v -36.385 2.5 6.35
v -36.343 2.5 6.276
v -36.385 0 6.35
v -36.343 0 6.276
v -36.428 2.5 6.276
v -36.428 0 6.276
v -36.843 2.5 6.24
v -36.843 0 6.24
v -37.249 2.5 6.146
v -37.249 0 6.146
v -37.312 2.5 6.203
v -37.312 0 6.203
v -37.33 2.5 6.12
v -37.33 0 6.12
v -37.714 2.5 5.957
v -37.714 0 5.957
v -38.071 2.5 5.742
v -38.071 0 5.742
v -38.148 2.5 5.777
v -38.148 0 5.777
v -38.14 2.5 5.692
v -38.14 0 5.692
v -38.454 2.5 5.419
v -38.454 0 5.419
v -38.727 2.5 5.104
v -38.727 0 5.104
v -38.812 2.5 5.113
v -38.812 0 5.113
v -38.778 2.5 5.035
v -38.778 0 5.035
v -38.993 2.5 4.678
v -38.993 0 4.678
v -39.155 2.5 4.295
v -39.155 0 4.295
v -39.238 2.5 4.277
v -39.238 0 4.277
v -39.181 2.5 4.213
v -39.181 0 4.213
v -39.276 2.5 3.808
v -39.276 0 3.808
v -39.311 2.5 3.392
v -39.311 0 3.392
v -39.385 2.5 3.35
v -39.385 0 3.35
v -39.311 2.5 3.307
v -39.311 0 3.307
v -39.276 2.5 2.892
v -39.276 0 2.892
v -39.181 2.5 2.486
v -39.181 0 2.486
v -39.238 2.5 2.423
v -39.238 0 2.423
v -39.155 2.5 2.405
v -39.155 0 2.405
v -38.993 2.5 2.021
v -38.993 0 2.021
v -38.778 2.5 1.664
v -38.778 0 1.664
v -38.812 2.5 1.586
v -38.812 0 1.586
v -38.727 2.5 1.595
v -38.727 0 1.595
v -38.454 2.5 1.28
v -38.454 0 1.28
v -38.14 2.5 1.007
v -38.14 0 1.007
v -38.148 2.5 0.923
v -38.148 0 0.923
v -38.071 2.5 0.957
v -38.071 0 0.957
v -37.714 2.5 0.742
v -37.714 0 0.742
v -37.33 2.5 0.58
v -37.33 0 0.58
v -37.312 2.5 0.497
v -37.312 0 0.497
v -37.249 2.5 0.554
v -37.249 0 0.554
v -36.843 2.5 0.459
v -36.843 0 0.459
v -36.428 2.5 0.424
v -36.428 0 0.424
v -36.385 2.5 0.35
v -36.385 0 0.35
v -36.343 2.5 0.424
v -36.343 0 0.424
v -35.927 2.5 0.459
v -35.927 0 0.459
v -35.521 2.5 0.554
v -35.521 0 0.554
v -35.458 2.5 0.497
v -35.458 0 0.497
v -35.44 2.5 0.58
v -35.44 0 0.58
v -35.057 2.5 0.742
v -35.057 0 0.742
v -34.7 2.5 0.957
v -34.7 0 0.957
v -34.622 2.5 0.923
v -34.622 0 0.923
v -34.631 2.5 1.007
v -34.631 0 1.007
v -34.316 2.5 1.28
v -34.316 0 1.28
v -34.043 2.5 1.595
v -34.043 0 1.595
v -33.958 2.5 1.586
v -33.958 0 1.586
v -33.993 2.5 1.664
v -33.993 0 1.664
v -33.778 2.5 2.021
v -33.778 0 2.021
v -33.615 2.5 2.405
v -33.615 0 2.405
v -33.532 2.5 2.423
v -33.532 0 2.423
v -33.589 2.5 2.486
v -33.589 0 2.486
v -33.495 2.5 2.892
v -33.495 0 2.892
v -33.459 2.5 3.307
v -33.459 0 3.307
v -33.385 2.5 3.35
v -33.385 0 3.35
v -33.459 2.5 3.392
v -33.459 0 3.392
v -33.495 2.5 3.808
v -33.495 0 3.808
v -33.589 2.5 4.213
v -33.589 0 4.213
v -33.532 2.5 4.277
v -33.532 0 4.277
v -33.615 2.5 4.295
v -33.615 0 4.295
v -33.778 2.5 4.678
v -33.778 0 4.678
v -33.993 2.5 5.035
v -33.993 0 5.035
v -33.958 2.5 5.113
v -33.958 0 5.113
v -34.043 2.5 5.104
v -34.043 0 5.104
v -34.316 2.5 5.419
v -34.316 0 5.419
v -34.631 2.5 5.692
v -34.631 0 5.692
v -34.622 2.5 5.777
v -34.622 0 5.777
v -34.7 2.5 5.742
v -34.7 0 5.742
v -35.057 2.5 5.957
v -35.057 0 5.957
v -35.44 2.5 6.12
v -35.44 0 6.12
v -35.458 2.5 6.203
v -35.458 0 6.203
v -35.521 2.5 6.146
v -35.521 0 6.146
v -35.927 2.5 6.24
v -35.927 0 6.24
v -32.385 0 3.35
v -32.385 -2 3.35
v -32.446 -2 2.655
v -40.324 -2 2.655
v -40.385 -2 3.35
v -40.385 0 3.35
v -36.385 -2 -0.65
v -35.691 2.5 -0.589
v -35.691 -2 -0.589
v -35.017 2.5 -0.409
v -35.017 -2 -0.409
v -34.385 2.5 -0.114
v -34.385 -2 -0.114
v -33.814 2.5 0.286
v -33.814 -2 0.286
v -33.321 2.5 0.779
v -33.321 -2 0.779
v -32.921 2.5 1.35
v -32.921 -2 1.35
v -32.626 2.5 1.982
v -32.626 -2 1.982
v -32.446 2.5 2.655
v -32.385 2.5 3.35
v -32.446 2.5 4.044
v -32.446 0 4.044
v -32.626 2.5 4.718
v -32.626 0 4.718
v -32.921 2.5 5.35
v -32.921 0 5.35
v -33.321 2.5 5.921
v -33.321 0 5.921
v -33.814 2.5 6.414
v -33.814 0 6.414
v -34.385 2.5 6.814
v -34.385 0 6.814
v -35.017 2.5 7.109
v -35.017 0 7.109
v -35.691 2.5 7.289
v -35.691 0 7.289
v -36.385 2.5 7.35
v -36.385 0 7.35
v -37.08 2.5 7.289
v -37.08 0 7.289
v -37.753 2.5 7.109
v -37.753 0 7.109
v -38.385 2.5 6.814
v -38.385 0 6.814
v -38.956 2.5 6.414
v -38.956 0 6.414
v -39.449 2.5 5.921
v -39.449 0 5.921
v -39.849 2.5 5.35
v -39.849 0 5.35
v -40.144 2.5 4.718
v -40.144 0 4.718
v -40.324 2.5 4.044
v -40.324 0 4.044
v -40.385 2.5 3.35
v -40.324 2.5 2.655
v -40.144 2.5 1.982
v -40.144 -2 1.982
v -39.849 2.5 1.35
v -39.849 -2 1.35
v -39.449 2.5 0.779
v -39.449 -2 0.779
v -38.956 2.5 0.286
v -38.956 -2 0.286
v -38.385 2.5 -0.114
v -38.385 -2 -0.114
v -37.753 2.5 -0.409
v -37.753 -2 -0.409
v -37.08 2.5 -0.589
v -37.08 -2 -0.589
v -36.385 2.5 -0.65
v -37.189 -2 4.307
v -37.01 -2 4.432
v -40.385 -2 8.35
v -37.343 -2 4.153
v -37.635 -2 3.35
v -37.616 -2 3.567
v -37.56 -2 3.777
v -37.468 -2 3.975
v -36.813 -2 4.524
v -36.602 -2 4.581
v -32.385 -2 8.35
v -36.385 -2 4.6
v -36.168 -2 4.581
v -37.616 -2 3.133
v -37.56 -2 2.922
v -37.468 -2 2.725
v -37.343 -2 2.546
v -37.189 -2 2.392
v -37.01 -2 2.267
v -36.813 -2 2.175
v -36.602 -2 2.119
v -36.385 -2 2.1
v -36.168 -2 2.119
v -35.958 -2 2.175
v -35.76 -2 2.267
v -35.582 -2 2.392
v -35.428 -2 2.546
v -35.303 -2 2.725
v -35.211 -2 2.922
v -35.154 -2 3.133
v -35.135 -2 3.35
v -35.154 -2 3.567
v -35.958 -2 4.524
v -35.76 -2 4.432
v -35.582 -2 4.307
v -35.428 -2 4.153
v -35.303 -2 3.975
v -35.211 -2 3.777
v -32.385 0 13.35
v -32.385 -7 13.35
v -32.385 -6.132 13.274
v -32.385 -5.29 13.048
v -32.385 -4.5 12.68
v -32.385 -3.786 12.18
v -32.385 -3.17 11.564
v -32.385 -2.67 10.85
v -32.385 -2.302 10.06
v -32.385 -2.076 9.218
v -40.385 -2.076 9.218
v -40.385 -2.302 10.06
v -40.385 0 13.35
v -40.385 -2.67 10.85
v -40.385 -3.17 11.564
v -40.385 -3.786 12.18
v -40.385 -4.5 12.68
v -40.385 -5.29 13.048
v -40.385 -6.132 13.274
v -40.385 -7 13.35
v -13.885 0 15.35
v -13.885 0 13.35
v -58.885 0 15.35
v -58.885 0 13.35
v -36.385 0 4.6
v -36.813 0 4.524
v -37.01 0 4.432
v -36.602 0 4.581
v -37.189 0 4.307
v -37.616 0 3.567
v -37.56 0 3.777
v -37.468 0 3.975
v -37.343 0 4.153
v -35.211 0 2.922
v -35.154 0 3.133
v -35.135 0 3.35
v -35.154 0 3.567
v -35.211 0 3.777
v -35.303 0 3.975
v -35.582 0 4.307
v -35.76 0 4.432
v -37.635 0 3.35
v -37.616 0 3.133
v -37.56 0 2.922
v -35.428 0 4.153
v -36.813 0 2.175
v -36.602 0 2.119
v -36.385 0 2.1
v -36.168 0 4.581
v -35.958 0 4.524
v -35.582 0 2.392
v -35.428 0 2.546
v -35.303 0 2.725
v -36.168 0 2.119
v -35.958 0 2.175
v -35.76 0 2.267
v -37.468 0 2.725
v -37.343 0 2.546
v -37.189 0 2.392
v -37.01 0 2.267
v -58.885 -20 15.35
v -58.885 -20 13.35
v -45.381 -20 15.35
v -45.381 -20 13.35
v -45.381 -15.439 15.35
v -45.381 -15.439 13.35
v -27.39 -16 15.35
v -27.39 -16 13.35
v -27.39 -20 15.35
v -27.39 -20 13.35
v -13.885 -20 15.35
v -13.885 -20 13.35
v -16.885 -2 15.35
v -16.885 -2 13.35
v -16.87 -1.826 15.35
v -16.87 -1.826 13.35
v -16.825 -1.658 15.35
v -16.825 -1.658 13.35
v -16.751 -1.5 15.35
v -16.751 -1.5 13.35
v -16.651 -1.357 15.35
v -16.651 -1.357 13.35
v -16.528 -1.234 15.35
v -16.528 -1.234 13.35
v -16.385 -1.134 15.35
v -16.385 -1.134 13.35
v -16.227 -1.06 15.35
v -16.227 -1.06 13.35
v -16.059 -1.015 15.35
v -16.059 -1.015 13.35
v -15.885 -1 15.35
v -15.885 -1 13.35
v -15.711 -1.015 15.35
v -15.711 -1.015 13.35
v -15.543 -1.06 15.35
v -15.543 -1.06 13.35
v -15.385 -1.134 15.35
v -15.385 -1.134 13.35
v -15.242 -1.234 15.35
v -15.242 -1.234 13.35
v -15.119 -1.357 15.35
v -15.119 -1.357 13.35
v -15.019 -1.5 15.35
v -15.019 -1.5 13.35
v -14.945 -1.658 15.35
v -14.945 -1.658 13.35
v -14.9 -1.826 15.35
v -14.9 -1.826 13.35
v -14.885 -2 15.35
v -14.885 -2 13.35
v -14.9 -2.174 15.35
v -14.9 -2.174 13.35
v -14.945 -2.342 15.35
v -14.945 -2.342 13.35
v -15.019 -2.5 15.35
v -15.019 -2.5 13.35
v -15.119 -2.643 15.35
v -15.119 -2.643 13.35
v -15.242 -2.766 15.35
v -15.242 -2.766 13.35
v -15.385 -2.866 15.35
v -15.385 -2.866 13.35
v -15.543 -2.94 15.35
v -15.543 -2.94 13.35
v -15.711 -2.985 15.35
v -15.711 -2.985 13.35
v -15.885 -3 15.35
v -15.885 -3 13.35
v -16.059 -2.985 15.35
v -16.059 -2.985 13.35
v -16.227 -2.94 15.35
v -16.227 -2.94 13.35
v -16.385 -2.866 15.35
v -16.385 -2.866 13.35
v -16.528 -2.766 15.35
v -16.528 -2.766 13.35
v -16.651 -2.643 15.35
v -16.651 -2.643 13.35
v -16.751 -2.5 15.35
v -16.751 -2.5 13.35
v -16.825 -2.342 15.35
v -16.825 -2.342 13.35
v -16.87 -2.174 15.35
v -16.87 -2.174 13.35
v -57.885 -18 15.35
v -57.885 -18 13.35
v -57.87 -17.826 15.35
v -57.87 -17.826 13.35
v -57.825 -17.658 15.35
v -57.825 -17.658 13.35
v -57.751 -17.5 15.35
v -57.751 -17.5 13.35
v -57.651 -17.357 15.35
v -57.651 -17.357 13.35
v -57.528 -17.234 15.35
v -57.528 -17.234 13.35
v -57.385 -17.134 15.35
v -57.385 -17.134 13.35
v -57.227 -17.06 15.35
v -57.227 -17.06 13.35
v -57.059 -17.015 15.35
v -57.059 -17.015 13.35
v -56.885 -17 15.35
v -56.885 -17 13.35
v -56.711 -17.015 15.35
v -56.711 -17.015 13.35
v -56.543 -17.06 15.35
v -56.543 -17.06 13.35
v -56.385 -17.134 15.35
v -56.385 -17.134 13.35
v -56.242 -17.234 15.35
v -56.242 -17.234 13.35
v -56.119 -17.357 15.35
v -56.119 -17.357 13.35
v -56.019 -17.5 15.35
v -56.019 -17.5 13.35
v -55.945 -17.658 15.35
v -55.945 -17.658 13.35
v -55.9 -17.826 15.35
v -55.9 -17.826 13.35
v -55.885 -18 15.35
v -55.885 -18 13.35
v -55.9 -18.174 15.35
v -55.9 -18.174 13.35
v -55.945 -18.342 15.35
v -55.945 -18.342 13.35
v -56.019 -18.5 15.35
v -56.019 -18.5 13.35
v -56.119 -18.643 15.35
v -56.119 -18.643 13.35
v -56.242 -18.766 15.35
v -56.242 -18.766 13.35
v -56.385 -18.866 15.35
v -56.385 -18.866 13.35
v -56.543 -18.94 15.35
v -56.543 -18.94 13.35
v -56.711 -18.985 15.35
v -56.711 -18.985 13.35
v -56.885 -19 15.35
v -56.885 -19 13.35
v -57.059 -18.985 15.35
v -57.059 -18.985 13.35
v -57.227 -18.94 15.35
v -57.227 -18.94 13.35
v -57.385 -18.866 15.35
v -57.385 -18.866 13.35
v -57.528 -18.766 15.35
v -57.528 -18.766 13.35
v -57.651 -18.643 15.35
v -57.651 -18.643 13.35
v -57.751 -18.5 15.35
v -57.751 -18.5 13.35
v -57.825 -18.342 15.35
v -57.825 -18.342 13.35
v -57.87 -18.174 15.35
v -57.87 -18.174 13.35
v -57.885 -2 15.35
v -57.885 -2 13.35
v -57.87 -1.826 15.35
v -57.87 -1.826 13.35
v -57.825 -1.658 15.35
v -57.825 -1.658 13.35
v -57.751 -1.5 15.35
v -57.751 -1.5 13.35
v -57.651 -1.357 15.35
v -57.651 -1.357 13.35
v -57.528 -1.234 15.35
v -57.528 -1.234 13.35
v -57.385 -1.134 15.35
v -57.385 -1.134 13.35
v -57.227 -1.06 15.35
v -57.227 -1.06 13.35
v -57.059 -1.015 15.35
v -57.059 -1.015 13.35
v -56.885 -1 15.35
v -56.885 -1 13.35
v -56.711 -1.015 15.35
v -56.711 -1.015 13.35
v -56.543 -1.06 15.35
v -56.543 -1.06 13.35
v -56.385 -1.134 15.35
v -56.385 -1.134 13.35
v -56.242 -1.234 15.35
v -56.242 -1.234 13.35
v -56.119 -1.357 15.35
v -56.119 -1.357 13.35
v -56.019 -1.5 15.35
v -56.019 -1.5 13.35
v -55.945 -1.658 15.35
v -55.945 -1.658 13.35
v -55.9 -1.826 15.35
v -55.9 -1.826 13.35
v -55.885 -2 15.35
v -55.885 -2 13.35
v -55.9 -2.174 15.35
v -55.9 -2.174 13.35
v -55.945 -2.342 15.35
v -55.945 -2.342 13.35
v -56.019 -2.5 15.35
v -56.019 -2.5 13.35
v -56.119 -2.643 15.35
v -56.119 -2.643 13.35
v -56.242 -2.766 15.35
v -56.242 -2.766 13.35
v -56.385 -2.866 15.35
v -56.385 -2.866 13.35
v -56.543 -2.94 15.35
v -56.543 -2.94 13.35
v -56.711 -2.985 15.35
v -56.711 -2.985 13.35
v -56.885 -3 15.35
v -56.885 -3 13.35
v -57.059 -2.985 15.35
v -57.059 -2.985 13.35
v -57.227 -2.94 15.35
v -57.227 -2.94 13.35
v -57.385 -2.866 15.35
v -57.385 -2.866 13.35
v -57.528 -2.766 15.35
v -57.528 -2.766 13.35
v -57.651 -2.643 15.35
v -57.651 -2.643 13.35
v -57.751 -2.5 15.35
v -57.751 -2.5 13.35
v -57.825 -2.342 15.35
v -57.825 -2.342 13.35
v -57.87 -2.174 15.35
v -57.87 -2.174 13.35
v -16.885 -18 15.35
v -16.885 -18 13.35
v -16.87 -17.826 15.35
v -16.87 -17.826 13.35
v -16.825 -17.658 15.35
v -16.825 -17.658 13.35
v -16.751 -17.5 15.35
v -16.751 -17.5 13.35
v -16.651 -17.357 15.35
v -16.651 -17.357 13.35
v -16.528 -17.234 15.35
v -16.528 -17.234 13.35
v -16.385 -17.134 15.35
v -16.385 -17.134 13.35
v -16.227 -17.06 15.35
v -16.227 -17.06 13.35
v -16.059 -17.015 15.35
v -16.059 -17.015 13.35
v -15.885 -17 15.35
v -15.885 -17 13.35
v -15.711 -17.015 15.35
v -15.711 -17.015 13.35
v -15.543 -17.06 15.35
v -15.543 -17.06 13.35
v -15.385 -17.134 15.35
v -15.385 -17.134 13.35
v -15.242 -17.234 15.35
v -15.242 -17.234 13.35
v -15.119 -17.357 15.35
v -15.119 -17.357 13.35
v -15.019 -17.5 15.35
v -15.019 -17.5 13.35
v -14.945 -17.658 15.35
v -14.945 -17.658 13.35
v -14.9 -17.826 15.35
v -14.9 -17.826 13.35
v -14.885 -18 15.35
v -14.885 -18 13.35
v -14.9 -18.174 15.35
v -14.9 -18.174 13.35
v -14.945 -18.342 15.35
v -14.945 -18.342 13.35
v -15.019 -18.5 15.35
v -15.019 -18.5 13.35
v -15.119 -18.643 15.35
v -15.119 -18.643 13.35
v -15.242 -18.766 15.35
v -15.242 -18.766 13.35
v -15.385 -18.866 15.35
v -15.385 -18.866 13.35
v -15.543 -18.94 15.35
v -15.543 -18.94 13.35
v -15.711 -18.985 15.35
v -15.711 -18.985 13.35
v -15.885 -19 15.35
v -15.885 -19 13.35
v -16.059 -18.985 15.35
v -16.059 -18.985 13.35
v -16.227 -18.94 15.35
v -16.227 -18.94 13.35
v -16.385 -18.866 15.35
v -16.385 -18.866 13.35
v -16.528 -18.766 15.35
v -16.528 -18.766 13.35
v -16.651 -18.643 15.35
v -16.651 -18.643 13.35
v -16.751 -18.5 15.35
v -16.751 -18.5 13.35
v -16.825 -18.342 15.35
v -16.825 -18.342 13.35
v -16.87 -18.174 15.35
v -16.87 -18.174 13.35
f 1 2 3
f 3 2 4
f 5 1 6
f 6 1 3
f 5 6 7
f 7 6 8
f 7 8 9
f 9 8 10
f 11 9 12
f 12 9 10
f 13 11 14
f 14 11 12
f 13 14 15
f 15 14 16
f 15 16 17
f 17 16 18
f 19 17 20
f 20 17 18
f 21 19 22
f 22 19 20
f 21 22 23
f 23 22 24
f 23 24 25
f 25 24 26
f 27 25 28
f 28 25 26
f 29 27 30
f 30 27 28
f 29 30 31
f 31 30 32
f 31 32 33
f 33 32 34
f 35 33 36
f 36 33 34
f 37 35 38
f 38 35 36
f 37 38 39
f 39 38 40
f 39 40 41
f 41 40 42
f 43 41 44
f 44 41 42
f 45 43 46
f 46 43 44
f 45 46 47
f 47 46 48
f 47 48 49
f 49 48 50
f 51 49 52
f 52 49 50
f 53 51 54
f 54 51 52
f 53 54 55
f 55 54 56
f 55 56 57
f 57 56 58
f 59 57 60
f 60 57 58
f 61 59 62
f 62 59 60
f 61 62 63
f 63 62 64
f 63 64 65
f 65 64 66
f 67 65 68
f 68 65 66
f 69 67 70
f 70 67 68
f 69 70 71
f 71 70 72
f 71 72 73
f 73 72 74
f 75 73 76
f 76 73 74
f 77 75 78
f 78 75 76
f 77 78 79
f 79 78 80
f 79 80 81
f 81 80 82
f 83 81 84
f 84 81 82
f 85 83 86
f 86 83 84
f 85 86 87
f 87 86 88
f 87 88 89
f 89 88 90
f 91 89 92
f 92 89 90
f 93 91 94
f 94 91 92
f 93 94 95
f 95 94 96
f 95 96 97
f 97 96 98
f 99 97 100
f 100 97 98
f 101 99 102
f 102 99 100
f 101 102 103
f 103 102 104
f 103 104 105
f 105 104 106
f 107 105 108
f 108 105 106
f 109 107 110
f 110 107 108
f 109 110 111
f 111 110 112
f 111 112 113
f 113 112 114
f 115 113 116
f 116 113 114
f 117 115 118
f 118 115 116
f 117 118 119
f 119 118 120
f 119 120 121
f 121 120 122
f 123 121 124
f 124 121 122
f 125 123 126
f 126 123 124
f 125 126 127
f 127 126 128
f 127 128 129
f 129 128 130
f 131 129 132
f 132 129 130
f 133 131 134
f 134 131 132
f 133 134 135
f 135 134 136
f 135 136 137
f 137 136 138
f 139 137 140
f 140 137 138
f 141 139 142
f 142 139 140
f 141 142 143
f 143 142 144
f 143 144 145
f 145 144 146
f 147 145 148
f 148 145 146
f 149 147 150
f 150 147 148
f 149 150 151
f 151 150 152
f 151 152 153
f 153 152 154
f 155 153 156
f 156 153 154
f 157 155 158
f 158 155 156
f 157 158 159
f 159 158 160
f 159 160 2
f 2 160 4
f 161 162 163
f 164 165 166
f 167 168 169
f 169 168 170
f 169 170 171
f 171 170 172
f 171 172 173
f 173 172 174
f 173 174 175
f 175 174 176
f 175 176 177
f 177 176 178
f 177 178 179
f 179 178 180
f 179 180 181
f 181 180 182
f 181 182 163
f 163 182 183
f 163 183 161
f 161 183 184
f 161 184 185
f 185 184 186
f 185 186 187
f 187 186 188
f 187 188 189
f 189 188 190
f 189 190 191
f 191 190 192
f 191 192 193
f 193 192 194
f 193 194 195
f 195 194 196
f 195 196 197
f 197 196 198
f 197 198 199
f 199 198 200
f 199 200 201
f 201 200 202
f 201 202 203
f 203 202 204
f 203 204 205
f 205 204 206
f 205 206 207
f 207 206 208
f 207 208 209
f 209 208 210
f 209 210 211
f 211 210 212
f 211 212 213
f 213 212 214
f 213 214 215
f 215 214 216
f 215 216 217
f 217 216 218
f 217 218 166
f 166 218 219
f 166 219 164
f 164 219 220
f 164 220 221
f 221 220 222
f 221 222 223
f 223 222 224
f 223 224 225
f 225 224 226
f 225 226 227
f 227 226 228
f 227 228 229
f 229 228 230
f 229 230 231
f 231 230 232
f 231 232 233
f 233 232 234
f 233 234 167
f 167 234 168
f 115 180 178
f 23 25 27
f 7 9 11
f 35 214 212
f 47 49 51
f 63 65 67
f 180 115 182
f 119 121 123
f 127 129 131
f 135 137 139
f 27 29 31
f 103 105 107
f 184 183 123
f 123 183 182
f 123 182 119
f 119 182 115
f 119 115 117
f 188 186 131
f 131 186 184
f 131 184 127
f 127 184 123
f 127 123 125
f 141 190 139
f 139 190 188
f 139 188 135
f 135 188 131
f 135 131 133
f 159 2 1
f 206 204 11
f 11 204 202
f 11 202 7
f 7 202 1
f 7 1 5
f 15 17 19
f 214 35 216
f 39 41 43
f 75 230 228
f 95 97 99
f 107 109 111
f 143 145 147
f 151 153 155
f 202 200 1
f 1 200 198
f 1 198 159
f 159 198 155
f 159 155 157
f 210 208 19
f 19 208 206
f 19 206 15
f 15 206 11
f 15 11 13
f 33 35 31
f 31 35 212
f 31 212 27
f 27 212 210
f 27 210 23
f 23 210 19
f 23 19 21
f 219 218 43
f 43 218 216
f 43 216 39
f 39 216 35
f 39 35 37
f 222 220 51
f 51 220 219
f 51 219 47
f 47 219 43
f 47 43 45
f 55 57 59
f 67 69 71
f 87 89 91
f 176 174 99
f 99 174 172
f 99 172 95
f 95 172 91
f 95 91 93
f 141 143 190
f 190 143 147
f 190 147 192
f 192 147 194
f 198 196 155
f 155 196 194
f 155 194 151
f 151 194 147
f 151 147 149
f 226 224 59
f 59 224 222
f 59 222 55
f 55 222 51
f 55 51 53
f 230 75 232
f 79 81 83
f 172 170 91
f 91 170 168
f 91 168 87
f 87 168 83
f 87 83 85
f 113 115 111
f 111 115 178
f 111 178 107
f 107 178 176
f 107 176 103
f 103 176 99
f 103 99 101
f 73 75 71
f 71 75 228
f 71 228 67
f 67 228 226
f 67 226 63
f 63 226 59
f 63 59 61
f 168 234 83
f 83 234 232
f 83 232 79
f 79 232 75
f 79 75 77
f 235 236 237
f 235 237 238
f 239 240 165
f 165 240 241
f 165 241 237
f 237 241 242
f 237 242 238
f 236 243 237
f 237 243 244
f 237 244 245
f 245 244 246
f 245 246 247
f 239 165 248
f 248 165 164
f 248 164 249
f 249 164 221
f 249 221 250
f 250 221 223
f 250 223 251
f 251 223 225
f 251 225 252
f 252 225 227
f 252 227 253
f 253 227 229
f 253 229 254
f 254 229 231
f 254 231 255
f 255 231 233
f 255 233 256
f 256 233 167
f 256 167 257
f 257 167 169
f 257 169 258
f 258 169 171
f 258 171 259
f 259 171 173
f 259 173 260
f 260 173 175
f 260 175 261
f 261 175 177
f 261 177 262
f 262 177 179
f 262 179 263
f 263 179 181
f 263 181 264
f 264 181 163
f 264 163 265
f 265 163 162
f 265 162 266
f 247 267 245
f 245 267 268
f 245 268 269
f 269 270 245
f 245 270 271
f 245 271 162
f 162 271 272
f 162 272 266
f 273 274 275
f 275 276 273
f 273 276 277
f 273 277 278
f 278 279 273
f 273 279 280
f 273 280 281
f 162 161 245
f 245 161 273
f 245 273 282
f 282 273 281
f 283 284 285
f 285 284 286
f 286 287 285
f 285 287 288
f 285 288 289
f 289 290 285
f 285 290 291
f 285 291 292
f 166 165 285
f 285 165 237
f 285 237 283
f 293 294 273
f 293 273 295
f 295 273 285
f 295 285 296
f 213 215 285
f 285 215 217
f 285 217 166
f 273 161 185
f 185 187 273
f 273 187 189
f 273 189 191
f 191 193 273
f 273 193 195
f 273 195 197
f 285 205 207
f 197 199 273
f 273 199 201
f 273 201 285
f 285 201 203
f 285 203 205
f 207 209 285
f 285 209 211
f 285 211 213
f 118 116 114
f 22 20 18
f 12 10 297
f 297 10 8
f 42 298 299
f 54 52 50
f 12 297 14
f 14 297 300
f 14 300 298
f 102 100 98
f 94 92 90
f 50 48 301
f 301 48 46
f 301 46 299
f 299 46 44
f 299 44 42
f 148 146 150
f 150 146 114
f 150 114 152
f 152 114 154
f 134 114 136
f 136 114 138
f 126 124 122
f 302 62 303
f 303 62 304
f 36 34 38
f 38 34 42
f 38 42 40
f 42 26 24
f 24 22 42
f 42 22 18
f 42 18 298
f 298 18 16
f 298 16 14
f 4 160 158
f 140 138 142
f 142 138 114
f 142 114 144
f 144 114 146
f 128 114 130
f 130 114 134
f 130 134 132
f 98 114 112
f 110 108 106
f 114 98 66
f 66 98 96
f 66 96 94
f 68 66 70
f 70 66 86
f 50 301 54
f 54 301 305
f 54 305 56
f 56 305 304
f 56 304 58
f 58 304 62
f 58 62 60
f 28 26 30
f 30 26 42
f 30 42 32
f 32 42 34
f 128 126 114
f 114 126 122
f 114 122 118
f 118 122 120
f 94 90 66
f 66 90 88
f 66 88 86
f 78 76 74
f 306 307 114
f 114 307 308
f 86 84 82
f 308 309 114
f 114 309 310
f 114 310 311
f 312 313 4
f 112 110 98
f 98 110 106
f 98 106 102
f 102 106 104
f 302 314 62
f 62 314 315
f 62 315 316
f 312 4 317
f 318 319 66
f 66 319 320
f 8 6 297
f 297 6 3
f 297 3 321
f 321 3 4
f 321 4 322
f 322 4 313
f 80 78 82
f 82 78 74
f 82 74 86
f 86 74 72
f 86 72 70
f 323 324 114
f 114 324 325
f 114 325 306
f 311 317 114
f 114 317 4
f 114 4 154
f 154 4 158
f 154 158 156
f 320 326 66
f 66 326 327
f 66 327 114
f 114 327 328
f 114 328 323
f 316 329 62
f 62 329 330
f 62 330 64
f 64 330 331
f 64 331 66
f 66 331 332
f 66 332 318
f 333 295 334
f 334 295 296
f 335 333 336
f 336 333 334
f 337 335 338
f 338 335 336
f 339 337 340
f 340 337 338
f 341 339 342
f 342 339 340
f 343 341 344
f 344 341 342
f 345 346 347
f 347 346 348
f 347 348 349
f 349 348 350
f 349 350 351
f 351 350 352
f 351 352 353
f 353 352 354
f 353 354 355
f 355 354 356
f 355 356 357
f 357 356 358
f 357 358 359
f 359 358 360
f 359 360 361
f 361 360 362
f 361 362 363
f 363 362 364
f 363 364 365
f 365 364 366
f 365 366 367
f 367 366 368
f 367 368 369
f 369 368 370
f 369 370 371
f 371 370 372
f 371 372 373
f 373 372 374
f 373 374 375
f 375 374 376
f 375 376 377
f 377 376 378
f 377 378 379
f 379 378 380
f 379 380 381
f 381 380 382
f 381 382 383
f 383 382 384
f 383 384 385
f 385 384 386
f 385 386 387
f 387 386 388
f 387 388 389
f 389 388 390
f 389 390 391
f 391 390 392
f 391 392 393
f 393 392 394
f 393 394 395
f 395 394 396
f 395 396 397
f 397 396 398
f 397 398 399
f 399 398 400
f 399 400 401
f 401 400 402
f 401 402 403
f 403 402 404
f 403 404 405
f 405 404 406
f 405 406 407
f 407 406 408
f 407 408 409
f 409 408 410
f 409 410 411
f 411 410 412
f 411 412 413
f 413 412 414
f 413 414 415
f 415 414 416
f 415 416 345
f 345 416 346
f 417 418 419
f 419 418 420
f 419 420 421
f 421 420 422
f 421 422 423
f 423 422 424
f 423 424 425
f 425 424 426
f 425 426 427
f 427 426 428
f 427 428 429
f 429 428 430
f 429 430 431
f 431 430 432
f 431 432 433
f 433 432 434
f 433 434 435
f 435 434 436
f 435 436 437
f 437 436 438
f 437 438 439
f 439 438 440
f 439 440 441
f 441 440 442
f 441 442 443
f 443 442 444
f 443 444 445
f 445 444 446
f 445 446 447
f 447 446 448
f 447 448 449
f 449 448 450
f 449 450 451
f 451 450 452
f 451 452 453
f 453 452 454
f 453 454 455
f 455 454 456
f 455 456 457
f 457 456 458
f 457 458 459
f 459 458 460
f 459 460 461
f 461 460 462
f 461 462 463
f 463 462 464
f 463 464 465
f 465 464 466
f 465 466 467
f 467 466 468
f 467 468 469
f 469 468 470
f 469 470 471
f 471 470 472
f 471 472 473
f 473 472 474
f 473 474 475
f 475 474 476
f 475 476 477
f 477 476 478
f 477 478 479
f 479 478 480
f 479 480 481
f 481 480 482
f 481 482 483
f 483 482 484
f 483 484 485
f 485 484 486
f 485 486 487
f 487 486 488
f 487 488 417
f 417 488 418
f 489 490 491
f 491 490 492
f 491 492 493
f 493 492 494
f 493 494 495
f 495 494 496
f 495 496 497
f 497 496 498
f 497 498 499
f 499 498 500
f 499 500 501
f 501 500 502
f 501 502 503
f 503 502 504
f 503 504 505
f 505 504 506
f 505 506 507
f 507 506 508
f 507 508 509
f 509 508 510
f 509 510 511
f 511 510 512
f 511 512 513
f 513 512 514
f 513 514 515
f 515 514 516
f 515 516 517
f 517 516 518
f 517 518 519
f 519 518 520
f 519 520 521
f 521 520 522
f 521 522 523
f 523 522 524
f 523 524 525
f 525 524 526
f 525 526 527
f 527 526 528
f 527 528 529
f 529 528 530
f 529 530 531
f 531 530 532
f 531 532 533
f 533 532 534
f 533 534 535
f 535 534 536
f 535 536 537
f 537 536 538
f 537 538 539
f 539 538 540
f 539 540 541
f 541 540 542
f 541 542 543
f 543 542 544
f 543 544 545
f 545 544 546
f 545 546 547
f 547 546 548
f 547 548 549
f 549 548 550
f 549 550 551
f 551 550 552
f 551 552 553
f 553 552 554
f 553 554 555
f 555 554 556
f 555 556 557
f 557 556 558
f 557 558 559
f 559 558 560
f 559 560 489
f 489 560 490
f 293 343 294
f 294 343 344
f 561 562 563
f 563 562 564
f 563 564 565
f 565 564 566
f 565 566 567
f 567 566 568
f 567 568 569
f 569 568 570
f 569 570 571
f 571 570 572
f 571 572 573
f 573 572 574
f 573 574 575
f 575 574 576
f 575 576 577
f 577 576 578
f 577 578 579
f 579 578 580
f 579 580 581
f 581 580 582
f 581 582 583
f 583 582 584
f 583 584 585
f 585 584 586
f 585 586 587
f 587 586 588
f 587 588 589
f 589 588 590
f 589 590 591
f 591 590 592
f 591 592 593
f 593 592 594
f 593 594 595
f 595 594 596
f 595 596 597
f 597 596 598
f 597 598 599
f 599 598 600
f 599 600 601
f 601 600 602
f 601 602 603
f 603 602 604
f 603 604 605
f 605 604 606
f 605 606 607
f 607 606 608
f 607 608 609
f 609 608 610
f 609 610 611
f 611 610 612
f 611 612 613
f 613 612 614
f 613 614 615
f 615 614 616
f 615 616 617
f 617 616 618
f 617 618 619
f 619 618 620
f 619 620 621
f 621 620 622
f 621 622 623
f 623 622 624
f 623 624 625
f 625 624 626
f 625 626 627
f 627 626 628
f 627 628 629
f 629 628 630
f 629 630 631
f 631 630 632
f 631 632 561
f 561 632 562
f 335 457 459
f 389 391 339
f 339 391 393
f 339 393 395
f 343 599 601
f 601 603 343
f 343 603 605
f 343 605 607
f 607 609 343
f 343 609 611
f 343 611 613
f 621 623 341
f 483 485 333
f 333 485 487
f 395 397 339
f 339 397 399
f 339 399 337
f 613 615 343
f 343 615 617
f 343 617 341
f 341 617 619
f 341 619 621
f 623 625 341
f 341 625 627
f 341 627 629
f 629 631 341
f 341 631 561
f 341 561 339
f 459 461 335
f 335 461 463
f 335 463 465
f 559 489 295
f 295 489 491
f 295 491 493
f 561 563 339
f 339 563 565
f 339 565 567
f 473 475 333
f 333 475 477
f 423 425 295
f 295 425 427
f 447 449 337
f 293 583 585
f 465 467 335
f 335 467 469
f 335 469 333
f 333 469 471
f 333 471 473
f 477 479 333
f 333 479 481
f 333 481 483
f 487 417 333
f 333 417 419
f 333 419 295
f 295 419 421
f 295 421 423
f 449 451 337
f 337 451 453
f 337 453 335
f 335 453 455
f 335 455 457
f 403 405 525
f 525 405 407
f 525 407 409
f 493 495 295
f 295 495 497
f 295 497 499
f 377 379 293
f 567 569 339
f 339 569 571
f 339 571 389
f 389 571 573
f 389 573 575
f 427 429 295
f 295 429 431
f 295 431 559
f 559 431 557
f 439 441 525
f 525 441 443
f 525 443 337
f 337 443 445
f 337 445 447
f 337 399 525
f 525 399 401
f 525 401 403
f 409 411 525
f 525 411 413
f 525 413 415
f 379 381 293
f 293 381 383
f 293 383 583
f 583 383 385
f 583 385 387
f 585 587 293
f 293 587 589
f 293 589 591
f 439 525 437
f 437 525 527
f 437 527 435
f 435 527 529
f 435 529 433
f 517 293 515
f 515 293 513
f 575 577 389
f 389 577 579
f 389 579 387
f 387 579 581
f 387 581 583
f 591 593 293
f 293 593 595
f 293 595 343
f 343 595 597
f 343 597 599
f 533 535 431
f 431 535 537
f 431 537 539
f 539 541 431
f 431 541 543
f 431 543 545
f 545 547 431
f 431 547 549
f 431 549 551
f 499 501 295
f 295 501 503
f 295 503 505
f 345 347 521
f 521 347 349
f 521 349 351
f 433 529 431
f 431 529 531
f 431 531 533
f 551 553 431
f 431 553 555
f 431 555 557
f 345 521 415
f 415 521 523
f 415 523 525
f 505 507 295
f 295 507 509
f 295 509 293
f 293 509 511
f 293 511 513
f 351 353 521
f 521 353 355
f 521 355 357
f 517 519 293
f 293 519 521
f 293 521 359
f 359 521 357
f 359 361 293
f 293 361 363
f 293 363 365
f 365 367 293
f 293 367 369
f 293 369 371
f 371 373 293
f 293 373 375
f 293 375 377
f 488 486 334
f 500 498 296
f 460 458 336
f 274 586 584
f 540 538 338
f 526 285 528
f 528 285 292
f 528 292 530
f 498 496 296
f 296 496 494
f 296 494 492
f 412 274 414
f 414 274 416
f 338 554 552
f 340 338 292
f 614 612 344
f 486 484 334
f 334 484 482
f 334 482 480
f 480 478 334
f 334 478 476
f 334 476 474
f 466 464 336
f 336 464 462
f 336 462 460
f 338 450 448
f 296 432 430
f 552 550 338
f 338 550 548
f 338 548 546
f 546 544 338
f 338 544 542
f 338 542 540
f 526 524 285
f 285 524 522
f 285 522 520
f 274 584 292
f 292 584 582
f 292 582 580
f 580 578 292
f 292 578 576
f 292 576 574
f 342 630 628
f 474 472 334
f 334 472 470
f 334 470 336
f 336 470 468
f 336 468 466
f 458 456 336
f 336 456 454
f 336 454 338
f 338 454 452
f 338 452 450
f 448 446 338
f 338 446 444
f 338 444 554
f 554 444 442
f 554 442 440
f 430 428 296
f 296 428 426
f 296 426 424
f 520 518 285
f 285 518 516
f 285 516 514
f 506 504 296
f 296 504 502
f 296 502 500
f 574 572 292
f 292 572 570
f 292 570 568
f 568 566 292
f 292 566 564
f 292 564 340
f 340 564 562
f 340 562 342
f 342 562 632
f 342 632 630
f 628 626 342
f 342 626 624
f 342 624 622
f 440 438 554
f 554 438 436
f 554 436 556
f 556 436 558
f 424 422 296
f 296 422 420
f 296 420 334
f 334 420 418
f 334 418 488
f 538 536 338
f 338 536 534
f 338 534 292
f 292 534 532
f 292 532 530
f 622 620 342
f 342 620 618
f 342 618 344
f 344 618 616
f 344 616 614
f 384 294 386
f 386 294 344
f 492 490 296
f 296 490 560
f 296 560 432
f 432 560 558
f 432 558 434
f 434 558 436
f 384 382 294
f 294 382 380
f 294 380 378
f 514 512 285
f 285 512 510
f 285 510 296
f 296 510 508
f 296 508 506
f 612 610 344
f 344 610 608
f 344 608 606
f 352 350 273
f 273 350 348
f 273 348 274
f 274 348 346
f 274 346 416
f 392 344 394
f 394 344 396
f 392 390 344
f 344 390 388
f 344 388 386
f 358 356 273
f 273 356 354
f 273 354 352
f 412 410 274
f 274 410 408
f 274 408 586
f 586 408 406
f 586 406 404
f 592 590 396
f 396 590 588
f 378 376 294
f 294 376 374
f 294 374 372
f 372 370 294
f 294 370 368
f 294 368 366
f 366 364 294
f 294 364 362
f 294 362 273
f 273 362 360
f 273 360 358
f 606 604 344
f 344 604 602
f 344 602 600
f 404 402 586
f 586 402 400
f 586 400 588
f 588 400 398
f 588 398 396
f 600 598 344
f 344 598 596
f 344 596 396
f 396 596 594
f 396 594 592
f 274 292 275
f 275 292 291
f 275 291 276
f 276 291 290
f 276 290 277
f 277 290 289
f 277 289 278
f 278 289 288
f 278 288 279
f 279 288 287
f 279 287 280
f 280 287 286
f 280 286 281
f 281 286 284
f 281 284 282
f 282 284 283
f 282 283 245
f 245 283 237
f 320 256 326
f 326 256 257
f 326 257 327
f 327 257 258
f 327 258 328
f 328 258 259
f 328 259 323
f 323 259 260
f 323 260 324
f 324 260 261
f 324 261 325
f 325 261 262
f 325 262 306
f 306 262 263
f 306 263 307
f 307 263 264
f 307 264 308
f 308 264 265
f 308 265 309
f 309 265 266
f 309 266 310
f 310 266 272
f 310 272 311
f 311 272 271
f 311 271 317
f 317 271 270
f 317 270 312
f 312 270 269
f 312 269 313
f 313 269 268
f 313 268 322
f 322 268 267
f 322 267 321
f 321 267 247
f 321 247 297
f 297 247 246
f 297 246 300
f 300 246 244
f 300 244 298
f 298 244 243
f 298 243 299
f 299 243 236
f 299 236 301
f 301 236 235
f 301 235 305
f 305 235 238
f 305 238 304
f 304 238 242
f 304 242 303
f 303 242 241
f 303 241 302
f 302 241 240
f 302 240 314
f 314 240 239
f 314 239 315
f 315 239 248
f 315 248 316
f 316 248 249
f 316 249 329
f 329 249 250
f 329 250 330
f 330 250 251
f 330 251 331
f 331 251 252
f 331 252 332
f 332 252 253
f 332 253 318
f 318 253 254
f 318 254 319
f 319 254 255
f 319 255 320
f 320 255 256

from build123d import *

# Parameters (mm, degrees)
SKETCH1_R           = 4
BOSS_EXTRUDE1_DEPTH = 2.5
BOSS_EXTRUDE5_DEPTH = 2
SKETCH10_R          = 1
BOSS_EXTRUDE6_DEPTH = 2
FILLET1_R           = 5
SKETCH11_R          = 1.25
CUT_EXTRUDE1_DEPTH  = 12


with BuildPart() as part:
    # Sketch1 → Boss-Extrude1 (new body)
    with BuildSketch(Plane(origin=(0, 0, 0), x_dir=(1, 0, 0), z_dir=(0, 1, 0))):
        with Locations((-36.385139863, -3.349743035)):
            Circle(SKETCH1_R)
        with BuildLine():
            Line((-36.385139863, -0.349743035), (-36.427751557, -0.423548653))
            ThreePointArc((-36.427751557, -0.423548653), (-36.842946049, -0.459268538), (-37.248857528, -0.553599062))
            Line((-37.248857528, -0.553599062), (-37.312190847, -0.496573486))
            Line((-37.312190847, -0.496573486), (-37.329909785, -0.579934537))
            ThreePointArc((-37.329909785, -0.579934537), (-37.713745161, -0.742208321), (-38.070640183, -0.957355526))
            Line((-38.070640183, -0.957355526), (-38.14849562, -0.922692052))
            Line((-38.14849562, -0.922692052), (-38.139587351, -1.007448576))
            ThreePointArc((-38.139587351, -1.007448576), (-38.454491129, -1.28039177), (-38.727434323, -1.595295548))
            Line((-38.727434323, -1.595295548), (-38.812190847, -1.586387278))
            Line((-38.812190847, -1.586387278), (-38.777527372, -1.664242716))
            ThreePointArc((-38.777527372, -1.664242716), (-38.992674577, -2.021137738), (-39.154948361, -2.404973114))
            Line((-39.154948361, -2.404973114), (-39.238309412, -2.422692052))
            Line((-39.238309412, -2.422692052), (-39.181283836, -2.486025371))
            ThreePointArc((-39.181283836, -2.486025371), (-39.27561436, -2.89193685), (-39.311334246, -3.307131342))
            Line((-39.311334246, -3.307131342), (-39.385139863, -3.349743035))
            Line((-39.385139863, -3.349743035), (-39.311334246, -3.392354728))
            ThreePointArc((-39.311334246, -3.392354728), (-39.27561436, -3.80754922), (-39.181283836, -4.2134607))
            Line((-39.181283836, -4.2134607), (-39.238309412, -4.276794018))
            Line((-39.238309412, -4.276794018), (-39.154948361, -4.294512957))
            ThreePointArc((-39.154948361, -4.294512957), (-38.992674577, -4.678348332), (-38.777527372, -5.035243354))
            Line((-38.777527372, -5.035243354), (-38.812190847, -5.113098792))
            Line((-38.812190847, -5.113098792), (-38.727434323, -5.104190522))
            ThreePointArc((-38.727434323, -5.104190522), (-38.454491129, -5.419094301), (-38.139587351, -5.692037494))
            Line((-38.139587351, -5.692037494), (-38.14849562, -5.776794018))
            Line((-38.14849562, -5.776794018), (-38.070640183, -5.742130544))
            ThreePointArc((-38.070640183, -5.742130544), (-37.713745161, -5.957277749), (-37.329909785, -6.119551533))
            Line((-37.329909785, -6.119551533), (-37.312190847, -6.202912584))
            Line((-37.312190847, -6.202912584), (-37.248857528, -6.145887008))
            ThreePointArc((-37.248857528, -6.145887008), (-36.842946049, -6.240217532), (-36.427751557, -6.275937417))
            Line((-36.427751557, -6.275937417), (-36.385139863, -6.349743035))
            Line((-36.385139863, -6.349743035), (-36.34252817, -6.275937417))
            ThreePointArc((-36.34252817, -6.275937417), (-35.927333678, -6.240217532), (-35.521422199, -6.145887008))
            Line((-35.521422199, -6.145887008), (-35.45808888, -6.202912584))
            Line((-35.45808888, -6.202912584), (-35.440369942, -6.119551533))
            ThreePointArc((-35.440369942, -6.119551533), (-35.056534566, -5.957277749), (-34.699639544, -5.742130544))
            Line((-34.699639544, -5.742130544), (-34.621784107, -5.776794018))
            Line((-34.621784107, -5.776794018), (-34.630692376, -5.692037494))
            ThreePointArc((-34.630692376, -5.692037494), (-34.315788598, -5.419094301), (-34.042845404, -5.104190522))
            Line((-34.042845404, -5.104190522), (-33.95808888, -5.113098792))
            Line((-33.95808888, -5.113098792), (-33.992752354, -5.035243354))
            ThreePointArc((-33.992752354, -5.035243354), (-33.77760515, -4.678348332), (-33.615331365, -4.294512957))
            Line((-33.615331365, -4.294512957), (-33.531970315, -4.276794018))
            Line((-33.531970315, -4.276794018), (-33.588995891, -4.2134607))
            ThreePointArc((-33.588995891, -4.2134607), (-33.494665367, -3.80754922), (-33.458945481, -3.392354728))
            Line((-33.458945481, -3.392354728), (-33.385139863, -3.349743035))
            Line((-33.385139863, -3.349743035), (-33.458945481, -3.307131342))
            ThreePointArc((-33.458945481, -3.307131342), (-33.494665367, -2.89193685), (-33.588995891, -2.486025371))
            Line((-33.588995891, -2.486025371), (-33.531970315, -2.422692052))
            Line((-33.531970315, -2.422692052), (-33.615331365, -2.404973114))
            ThreePointArc((-33.615331365, -2.404973114), (-33.77760515, -2.021137738), (-33.992752354, -1.664242716))
            Line((-33.992752354, -1.664242716), (-33.95808888, -1.586387278))
            Line((-33.95808888, -1.586387278), (-34.042845404, -1.595295548))
            ThreePointArc((-34.042845404, -1.595295548), (-34.315788598, -1.28039177), (-34.630692376, -1.007448576))
            Line((-34.630692376, -1.007448576), (-34.621784107, -0.922692052))
            Line((-34.621784107, -0.922692052), (-34.699639544, -0.957355526))
            ThreePointArc((-34.699639544, -0.957355526), (-35.056534566, -0.742208321), (-35.440369942, -0.579934537))
            Line((-35.440369942, -0.579934537), (-35.45808888, -0.496573486))
            Line((-35.45808888, -0.496573486), (-35.521422199, -0.553599062))
            ThreePointArc((-35.521422199, -0.553599062), (-35.927333678, -0.459268538), (-36.34252817, -0.423548653))
            Line((-36.34252817, -0.423548653), (-36.385139863, -0.349743035))
        make_face(mode=Mode.SUBTRACT)
    extrude(amount=BOSS_EXTRUDE1_DEPTH)

    # Sketch2 → Boss-Extrude5 (add)
    with BuildSketch(Plane.XZ):
        with BuildLine():
            ThreePointArc((-40.385139863, 3.349743035), (-36.385139863, -0.650256965), (-32.385139863, 3.349743035))
            Line((-32.385139863, 3.349743035), (-32.385139863, 13.349743035))
            Line((-32.385139863, 13.349743035), (-40.385139863, 13.349743035))
            Line((-40.385139863, 13.349743035), (-40.385139863, 3.349743035))
        make_face()
    extrude(amount=BOSS_EXTRUDE5_DEPTH)

    # Sketch10 → Boss-Extrude6 (add)
    with BuildSketch(Plane.XY.offset(13.349743035)):
        Polygon((-13.885139863, 0), (-58.885139863, 0), (-58.885139863, -20), (-45.380774313, -20), (-45.380774313, -15.439425839), (-27.389505414, -16), (-27.389505414, -20), (-13.885139863, -20), align=None)
        with Locations((-56.885139863, -18)):
            Circle(SKETCH10_R, mode=Mode.SUBTRACT)
        with Locations((-15.885139863, -18)):
            Circle(SKETCH10_R, mode=Mode.SUBTRACT)
        with Locations((-56.885139863, -2)):
            Circle(SKETCH10_R, mode=Mode.SUBTRACT)
        with Locations((-15.885139863, -2)):
            Circle(SKETCH10_R, mode=Mode.SUBTRACT)
    extrude(amount=BOSS_EXTRUDE6_DEPTH)

    # Fillet1
    fillet1_edges = [part.edges().sort_by_distance(p)[0] for p in [
        (-36.385139863, -2, 13.349743035),
    ]]
    fillet(fillet1_edges, radius=FILLET1_R)

    # Sketch11 → Cut-Extrude1 (cut)
    with BuildSketch(Plane.XZ.offset(2)):
        with Locations((-36.385139863, 3.349743035)):
            Circle(SKETCH11_R)
    extrude(amount=-CUT_EXTRUDE1_DEPTH, mode=Mode.SUBTRACT)


solid = part.part
